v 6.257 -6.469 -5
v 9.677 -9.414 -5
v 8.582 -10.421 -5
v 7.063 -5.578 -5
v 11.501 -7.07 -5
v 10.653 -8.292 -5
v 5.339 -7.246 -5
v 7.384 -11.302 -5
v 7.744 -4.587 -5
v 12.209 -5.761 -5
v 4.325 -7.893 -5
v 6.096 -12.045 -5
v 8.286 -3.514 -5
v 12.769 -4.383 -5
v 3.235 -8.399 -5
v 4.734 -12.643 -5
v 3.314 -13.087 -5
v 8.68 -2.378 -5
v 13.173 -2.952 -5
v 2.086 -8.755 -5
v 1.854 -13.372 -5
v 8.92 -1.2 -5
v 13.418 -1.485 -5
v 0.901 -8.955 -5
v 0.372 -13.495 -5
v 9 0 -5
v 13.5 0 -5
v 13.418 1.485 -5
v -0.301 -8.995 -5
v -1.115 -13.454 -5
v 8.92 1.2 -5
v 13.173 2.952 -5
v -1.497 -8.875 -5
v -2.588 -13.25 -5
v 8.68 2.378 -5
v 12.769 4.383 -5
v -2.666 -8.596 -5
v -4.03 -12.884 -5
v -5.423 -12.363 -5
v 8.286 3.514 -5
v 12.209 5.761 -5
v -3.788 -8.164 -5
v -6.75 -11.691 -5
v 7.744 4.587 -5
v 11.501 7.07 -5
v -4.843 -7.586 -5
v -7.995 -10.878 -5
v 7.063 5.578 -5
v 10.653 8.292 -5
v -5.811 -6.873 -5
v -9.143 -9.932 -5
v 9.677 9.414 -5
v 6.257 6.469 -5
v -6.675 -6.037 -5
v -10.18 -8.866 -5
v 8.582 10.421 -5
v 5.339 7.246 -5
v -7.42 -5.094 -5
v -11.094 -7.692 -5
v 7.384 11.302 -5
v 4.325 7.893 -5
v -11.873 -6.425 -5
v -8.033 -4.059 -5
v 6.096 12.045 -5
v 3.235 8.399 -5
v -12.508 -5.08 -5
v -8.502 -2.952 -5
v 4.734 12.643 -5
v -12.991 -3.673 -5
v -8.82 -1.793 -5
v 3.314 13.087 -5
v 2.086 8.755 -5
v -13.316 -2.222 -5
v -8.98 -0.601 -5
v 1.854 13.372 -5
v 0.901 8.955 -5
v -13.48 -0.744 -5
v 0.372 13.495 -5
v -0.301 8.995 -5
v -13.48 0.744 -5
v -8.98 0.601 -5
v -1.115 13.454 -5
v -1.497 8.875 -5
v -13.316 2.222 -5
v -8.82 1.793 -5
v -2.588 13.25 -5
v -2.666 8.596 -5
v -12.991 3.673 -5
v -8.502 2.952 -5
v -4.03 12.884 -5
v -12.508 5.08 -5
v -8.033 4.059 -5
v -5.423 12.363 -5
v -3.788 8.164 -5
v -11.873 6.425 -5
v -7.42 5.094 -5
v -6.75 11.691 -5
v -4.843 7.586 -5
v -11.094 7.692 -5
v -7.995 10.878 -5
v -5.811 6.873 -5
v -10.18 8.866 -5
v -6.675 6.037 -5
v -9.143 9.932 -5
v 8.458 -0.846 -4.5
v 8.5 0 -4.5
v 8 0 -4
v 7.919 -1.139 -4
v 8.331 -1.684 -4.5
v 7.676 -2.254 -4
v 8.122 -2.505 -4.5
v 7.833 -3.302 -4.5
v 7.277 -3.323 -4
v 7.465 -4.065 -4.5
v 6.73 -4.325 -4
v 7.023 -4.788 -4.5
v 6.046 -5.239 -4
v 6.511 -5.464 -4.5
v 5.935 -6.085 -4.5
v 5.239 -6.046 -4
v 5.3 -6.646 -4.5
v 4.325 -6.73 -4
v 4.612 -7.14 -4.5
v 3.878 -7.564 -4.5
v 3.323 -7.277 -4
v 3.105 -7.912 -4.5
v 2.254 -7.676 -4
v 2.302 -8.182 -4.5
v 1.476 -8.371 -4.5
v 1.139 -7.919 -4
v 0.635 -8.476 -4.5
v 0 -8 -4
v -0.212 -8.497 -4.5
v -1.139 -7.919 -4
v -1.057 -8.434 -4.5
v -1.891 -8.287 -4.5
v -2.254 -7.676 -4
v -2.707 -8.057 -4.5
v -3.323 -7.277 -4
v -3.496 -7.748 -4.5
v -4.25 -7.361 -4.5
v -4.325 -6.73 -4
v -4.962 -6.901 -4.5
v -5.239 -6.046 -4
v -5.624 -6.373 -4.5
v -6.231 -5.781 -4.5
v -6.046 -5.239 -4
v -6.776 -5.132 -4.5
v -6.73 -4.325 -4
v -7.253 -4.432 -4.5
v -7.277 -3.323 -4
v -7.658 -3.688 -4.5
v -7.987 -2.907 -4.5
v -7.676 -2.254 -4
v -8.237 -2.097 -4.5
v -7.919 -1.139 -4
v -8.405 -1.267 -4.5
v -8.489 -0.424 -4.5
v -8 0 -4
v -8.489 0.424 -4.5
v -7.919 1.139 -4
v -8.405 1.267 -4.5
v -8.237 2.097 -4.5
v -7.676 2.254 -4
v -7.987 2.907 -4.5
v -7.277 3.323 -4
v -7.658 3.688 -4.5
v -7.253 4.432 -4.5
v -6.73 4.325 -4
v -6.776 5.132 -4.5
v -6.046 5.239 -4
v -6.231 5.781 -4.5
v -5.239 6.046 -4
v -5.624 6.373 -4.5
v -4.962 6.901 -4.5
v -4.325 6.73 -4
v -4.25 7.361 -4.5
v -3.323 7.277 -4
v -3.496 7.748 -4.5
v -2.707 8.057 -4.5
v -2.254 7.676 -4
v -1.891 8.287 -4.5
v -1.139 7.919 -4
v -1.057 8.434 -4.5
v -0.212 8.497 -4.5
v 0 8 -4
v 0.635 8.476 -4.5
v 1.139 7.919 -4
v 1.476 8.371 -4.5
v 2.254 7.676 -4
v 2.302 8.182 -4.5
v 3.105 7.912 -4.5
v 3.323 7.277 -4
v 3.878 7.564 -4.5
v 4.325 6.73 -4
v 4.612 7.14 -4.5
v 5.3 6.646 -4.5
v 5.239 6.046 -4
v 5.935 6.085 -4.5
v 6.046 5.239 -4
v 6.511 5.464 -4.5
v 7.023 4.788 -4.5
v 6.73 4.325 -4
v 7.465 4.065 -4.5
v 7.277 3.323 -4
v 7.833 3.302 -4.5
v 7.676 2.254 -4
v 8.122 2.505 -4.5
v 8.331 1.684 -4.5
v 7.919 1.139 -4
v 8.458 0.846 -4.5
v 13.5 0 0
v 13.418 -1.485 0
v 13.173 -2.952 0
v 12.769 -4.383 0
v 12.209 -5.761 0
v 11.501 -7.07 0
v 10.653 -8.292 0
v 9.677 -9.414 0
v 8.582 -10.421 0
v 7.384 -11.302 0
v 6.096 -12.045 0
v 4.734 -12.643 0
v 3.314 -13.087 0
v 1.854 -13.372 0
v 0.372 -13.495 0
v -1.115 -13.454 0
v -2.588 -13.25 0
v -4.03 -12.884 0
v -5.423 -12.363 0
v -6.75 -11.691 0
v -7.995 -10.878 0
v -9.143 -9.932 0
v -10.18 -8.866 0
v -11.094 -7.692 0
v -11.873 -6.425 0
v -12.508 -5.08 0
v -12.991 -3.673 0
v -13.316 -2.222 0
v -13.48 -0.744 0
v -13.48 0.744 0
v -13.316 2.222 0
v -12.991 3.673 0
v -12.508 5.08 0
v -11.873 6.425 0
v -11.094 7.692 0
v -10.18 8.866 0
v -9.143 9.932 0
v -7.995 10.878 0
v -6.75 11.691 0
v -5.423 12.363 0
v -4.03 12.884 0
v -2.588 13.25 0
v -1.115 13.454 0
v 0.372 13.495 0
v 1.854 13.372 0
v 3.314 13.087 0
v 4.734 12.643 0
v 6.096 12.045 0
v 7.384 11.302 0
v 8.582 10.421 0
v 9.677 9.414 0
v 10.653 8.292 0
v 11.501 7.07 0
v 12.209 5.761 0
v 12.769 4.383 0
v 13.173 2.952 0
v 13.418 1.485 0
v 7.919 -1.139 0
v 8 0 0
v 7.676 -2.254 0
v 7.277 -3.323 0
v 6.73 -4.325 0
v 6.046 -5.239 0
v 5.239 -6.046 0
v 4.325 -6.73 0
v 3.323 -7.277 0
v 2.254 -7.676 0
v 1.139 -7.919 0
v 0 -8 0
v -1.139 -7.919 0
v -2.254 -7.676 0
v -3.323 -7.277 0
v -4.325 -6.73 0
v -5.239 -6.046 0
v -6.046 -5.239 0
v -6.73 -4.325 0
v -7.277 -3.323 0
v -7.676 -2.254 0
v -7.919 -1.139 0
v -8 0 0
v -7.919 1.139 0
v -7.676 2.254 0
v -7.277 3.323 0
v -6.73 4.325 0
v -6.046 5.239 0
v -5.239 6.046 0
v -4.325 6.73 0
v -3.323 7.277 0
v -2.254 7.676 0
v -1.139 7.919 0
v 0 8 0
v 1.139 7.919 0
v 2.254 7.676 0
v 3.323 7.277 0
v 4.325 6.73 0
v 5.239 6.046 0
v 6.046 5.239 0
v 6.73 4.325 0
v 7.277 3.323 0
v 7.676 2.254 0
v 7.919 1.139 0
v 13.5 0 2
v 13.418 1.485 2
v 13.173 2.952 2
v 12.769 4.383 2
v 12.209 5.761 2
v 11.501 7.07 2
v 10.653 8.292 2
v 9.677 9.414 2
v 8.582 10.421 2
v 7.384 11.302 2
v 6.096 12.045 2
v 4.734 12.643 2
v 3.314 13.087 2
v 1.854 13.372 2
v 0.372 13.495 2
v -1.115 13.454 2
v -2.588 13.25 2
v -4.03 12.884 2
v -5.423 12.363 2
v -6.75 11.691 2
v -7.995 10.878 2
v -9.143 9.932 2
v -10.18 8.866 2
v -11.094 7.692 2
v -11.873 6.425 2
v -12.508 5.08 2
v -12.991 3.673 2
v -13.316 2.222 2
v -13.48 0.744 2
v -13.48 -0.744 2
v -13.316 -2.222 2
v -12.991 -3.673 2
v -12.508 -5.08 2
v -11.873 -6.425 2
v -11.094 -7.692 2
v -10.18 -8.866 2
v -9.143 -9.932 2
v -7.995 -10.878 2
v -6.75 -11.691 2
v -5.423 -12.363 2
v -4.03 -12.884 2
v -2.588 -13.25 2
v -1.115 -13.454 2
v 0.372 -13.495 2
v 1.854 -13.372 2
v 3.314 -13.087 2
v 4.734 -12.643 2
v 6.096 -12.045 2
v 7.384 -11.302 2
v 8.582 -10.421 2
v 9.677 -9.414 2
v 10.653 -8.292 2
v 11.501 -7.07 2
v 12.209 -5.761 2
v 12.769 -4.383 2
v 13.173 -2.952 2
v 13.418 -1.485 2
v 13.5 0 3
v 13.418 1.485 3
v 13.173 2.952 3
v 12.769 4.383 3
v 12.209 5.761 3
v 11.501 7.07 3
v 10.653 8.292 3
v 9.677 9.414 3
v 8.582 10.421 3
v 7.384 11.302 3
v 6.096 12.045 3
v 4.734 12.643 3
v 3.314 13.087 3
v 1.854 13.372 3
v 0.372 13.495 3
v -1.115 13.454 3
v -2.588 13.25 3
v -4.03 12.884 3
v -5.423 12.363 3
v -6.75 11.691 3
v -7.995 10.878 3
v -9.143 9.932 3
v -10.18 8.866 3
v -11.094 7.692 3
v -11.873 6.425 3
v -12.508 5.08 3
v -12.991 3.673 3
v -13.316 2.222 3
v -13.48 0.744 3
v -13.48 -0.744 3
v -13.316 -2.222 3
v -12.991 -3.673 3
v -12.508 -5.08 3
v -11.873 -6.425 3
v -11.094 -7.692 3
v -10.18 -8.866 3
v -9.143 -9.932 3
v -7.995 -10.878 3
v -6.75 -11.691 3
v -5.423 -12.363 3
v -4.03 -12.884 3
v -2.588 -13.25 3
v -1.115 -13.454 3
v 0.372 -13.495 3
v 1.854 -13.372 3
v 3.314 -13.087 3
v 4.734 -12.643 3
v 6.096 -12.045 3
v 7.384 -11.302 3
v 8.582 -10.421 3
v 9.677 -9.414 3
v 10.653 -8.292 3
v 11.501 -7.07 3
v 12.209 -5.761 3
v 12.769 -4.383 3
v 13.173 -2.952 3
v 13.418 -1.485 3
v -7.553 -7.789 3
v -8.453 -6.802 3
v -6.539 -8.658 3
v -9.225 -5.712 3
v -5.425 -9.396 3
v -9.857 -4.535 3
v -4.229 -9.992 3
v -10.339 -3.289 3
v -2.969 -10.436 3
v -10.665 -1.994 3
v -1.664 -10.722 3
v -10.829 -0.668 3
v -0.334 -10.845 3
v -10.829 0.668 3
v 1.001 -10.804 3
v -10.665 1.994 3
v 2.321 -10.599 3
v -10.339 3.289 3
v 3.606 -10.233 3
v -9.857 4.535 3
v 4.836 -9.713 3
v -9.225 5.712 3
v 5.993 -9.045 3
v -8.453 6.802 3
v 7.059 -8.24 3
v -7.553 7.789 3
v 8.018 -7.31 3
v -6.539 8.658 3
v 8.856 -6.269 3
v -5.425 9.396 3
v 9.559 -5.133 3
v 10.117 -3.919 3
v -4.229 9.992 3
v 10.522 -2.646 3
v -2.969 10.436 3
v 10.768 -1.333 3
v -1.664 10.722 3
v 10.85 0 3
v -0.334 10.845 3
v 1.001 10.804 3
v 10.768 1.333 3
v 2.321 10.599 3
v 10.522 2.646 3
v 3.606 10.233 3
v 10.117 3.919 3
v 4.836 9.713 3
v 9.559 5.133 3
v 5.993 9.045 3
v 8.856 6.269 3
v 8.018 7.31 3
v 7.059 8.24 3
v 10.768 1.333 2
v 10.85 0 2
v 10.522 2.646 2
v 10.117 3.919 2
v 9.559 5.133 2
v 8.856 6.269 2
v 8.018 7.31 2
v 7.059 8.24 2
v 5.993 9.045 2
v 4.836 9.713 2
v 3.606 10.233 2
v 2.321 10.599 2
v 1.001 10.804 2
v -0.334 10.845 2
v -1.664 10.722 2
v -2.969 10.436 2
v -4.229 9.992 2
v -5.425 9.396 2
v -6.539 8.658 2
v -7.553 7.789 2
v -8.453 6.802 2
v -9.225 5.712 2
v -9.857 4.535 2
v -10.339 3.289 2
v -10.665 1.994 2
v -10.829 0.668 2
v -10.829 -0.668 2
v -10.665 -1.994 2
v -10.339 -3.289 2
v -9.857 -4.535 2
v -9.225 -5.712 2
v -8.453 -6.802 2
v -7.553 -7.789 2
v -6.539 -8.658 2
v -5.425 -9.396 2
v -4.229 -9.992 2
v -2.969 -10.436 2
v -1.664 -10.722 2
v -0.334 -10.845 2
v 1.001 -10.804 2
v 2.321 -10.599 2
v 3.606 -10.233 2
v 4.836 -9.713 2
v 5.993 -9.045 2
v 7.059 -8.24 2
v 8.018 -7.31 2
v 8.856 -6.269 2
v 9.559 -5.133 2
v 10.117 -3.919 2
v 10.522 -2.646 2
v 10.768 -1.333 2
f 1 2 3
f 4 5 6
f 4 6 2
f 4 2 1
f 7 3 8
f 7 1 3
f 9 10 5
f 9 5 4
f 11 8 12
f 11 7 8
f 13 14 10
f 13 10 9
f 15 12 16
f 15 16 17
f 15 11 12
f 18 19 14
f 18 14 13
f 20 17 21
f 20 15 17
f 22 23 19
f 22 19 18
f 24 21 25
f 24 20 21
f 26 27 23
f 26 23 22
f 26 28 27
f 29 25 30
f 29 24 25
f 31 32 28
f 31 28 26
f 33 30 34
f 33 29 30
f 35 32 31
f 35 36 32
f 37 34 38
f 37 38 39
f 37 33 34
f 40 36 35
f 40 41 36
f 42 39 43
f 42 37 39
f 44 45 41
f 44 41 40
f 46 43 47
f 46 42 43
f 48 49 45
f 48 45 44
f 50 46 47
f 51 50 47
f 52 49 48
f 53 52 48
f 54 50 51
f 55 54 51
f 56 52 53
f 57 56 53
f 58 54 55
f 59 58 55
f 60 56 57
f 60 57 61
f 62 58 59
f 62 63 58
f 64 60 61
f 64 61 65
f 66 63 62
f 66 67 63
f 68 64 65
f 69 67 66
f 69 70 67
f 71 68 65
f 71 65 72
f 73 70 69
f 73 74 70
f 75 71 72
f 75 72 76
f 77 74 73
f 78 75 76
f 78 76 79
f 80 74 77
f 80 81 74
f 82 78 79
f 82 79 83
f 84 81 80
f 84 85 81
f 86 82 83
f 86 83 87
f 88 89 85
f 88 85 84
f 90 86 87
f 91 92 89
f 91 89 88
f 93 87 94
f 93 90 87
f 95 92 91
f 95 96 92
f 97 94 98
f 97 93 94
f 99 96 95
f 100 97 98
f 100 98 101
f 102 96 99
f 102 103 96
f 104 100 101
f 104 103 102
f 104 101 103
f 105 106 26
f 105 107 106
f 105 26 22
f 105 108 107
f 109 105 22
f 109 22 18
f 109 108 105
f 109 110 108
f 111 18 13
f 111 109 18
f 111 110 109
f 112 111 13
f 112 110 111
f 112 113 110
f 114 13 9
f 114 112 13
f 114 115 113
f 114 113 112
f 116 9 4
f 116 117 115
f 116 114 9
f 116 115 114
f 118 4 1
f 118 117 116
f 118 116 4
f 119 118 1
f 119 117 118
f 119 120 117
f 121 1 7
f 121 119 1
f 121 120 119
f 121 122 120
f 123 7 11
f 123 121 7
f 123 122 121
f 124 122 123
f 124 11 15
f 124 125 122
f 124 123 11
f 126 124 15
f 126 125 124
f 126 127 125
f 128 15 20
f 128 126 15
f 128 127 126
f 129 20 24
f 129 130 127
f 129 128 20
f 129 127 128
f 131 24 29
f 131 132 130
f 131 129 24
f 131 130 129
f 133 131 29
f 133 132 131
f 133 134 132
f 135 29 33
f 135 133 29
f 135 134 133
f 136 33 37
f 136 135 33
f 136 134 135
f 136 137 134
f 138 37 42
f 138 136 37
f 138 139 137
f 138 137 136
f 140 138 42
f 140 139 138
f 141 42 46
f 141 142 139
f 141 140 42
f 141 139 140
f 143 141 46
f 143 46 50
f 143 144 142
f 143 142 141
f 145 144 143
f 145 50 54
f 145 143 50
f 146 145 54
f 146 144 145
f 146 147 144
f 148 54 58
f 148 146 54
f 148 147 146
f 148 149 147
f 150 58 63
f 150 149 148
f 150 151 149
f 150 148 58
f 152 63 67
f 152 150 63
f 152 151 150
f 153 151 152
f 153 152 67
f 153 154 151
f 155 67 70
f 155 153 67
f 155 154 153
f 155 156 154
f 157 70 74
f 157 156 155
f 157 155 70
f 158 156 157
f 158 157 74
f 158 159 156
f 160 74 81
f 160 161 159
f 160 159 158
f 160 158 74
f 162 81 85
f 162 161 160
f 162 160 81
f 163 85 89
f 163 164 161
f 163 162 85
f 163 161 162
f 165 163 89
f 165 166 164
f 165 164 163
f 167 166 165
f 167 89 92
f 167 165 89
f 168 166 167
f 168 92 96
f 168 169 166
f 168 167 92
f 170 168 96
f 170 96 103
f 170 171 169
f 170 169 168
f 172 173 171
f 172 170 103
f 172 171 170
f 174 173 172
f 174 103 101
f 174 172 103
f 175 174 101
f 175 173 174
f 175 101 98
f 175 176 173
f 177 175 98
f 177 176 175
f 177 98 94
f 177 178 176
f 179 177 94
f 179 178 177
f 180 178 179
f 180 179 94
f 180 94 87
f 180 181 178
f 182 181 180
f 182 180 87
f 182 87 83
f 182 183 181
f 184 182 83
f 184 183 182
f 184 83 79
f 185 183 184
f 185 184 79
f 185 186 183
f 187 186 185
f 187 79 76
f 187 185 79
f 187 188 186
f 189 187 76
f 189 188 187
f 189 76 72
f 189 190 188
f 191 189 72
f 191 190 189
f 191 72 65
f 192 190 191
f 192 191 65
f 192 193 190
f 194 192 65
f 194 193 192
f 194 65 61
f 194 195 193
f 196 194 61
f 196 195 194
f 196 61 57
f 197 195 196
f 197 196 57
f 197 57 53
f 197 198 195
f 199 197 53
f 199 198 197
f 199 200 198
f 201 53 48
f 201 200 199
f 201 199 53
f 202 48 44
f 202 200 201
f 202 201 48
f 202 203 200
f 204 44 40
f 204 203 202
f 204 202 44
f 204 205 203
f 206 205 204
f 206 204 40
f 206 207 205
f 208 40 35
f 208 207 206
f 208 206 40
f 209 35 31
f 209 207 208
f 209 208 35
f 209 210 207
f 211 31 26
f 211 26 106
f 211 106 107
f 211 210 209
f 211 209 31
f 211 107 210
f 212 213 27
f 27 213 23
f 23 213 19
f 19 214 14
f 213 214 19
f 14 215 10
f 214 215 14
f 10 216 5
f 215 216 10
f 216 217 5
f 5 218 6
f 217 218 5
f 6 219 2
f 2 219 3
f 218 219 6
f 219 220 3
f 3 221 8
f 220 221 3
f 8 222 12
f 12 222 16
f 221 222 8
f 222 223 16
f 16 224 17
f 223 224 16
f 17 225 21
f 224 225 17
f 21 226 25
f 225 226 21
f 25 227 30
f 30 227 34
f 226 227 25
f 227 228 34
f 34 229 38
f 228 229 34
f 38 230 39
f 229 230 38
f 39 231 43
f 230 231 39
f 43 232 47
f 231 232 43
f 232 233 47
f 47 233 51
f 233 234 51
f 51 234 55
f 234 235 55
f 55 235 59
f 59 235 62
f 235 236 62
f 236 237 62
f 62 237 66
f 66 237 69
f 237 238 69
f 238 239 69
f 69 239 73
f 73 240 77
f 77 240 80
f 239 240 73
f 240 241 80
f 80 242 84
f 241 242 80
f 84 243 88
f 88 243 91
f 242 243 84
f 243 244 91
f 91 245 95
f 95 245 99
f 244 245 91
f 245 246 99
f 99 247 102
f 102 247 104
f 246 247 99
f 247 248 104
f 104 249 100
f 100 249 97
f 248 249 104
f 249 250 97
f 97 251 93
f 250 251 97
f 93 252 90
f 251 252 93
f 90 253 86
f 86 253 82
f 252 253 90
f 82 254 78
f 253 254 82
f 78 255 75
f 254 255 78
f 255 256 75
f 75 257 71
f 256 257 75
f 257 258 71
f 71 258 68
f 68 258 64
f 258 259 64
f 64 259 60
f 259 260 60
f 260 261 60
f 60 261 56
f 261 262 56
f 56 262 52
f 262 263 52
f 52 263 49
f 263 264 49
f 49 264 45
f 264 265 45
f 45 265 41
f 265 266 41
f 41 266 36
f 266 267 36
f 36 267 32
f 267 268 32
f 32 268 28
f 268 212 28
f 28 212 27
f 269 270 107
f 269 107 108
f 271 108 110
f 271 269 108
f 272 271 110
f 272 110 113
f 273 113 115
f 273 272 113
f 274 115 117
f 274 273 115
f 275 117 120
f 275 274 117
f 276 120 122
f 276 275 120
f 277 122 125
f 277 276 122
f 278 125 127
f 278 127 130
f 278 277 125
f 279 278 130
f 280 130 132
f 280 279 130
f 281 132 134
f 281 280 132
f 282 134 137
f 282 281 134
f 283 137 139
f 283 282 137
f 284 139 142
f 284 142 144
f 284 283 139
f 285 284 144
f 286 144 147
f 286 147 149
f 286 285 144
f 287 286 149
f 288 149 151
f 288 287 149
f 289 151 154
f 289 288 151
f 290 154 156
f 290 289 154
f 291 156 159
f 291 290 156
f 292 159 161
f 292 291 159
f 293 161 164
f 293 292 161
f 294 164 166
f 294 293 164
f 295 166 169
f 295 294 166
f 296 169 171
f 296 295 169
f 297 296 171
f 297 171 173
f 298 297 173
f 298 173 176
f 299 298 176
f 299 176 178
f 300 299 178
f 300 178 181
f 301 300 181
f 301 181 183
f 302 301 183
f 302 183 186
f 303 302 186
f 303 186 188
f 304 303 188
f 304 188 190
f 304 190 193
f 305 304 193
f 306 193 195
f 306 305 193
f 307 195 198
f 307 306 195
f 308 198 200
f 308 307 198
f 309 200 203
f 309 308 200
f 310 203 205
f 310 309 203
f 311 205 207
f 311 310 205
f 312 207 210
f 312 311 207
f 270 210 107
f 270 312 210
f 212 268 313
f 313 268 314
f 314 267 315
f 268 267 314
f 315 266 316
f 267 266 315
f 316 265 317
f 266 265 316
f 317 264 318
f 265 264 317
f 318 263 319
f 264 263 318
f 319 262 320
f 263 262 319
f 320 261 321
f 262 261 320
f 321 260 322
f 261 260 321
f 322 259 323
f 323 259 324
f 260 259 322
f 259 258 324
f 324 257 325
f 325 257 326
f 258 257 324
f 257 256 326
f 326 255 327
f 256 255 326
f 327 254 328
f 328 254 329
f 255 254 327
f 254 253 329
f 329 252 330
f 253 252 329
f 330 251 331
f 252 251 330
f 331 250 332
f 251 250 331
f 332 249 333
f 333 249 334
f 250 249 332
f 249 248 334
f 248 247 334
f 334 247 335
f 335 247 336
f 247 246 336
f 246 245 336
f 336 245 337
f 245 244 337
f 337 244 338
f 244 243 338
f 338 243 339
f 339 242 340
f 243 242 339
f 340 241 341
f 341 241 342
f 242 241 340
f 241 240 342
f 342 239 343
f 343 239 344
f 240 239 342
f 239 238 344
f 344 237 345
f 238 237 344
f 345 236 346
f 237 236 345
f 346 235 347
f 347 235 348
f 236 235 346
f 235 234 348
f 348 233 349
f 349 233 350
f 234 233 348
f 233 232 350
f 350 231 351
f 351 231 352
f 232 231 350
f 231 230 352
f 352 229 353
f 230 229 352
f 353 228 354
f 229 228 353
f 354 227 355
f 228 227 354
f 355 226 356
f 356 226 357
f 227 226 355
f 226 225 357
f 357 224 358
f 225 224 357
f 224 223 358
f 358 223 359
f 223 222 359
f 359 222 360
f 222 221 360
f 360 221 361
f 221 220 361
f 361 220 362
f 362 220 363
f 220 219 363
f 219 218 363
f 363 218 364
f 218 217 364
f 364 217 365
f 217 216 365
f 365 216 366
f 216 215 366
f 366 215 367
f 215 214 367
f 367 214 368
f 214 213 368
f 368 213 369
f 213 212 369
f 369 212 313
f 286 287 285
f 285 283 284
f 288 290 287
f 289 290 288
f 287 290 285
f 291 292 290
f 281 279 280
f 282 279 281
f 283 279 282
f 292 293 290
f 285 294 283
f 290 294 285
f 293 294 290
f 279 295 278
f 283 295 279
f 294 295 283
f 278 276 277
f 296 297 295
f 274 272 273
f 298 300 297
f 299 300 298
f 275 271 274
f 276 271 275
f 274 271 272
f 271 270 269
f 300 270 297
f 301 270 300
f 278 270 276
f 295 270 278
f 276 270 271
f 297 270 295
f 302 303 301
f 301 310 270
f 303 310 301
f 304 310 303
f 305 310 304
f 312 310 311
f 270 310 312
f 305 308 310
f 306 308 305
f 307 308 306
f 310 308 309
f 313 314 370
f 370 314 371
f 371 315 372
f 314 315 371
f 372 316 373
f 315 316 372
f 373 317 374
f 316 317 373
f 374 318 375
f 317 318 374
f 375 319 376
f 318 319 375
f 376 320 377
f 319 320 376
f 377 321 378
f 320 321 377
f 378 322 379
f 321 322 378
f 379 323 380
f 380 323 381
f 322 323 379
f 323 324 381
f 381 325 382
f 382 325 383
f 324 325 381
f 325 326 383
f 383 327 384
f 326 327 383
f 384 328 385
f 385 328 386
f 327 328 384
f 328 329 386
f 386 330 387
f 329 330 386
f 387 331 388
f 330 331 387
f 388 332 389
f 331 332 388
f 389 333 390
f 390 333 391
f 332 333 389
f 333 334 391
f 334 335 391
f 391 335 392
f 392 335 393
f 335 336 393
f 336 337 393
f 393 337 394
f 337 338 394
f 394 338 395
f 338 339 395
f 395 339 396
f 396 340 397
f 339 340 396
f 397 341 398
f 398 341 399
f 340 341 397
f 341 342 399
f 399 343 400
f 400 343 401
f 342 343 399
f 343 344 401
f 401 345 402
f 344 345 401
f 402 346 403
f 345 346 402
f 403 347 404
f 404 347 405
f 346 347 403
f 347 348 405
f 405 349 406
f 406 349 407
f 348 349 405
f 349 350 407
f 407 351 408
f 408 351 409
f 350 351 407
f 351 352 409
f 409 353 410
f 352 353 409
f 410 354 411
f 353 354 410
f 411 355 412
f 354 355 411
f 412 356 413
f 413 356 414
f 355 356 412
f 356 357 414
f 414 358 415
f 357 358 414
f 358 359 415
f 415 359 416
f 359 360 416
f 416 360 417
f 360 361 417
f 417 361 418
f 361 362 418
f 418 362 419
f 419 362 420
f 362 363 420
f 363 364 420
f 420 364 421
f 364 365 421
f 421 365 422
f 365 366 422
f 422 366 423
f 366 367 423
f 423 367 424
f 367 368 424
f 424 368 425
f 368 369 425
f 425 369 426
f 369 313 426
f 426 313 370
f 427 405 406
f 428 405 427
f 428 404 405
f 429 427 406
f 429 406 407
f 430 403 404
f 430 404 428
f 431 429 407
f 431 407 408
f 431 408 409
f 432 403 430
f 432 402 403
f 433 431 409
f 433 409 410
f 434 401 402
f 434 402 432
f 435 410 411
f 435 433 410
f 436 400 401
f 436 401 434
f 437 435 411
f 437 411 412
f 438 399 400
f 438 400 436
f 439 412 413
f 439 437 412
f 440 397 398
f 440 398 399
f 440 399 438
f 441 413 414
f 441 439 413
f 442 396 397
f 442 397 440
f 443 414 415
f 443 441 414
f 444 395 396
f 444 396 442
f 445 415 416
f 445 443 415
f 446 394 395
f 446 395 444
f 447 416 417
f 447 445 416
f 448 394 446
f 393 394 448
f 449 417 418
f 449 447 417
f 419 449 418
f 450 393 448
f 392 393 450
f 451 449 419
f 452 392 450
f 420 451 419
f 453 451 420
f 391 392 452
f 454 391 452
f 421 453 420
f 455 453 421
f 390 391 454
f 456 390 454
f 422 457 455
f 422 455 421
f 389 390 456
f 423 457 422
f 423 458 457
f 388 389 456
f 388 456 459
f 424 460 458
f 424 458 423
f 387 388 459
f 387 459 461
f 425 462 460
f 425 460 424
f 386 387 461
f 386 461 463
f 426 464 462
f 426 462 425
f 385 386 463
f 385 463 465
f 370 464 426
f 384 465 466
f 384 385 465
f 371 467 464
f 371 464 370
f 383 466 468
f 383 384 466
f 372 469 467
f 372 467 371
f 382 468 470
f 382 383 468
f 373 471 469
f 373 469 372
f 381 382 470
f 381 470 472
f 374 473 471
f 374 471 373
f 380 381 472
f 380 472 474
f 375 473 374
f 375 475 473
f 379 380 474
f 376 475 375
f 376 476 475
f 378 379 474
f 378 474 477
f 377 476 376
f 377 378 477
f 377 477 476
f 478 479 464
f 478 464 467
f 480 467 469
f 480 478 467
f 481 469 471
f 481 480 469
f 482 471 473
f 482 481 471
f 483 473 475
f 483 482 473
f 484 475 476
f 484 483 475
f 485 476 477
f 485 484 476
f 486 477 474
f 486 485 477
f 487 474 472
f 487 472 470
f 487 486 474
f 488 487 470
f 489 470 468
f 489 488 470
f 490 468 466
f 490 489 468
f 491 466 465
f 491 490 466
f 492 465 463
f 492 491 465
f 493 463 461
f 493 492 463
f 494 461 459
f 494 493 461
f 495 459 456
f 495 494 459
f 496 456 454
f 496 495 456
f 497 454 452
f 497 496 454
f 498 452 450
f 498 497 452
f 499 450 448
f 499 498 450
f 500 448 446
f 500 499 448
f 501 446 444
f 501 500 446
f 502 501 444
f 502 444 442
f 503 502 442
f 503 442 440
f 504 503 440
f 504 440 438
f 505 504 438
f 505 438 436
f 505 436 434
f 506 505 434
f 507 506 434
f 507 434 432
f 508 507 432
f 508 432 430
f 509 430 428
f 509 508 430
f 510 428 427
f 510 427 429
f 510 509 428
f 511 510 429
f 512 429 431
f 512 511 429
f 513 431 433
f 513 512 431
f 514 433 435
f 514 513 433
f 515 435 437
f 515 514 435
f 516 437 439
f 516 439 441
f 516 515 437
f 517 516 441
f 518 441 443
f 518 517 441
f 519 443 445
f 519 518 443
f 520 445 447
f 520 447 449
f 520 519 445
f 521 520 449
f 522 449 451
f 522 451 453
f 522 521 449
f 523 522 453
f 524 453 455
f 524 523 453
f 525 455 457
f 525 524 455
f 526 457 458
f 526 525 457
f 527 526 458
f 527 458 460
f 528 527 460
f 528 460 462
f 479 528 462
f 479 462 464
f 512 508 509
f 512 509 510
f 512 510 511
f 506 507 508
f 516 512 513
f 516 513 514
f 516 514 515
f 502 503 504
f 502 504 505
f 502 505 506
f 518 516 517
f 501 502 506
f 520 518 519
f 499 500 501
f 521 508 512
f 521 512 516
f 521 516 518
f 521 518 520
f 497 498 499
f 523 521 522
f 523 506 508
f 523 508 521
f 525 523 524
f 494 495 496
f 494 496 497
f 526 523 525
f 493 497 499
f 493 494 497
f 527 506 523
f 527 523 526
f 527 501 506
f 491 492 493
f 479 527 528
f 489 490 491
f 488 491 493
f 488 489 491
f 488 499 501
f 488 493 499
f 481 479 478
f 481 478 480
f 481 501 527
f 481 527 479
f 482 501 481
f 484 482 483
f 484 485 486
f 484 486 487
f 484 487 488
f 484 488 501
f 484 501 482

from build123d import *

# Parameters (mm, degrees)
SKETCH_R      = 13.5
PAD_DEPTH     = 2
SKETCH001_R   = 13.5
SKETCH001_R_2 = 10.85
PAD001_DEPTH  = 1
SKETCH002_R   = 13.5
SKETCH002_R_2 = 8
PAD002_DEPTH  = 5
CHAMFER_SIZE  = 1


with BuildPart() as part:
    # Sketch → Pad (new body)
    with BuildSketch(Plane.XY):
        Circle(SKETCH_R)
    extrude(amount=PAD_DEPTH)

    # Sketch001 (on Face3 of Pad) → Pad001 (join)
    with BuildSketch(Plane.XY.offset(2)):
        Circle(SKETCH001_R)
        Circle(SKETCH001_R_2, mode=Mode.SUBTRACT)
    extrude(amount=PAD001_DEPTH)

    # Sketch002 (on Face2 of Pad001) → Pad002 (join)
    with BuildSketch(Plane(origin=(0, 0, 0), x_dir=(1, 0, 0), z_dir=(0, 0, -1))):
        Circle(SKETCH002_R)
        Circle(SKETCH002_R_2, mode=Mode.SUBTRACT)
    extrude(amount=PAD002_DEPTH)

    # Chamfer
    chamfer_edges = [part.edges().sort_by_distance(p)[0] for p in [
        (-8, 0, -5),
    ]]
    chamfer(chamfer_edges, length=CHAMFER_SIZE)


solid = part.part
